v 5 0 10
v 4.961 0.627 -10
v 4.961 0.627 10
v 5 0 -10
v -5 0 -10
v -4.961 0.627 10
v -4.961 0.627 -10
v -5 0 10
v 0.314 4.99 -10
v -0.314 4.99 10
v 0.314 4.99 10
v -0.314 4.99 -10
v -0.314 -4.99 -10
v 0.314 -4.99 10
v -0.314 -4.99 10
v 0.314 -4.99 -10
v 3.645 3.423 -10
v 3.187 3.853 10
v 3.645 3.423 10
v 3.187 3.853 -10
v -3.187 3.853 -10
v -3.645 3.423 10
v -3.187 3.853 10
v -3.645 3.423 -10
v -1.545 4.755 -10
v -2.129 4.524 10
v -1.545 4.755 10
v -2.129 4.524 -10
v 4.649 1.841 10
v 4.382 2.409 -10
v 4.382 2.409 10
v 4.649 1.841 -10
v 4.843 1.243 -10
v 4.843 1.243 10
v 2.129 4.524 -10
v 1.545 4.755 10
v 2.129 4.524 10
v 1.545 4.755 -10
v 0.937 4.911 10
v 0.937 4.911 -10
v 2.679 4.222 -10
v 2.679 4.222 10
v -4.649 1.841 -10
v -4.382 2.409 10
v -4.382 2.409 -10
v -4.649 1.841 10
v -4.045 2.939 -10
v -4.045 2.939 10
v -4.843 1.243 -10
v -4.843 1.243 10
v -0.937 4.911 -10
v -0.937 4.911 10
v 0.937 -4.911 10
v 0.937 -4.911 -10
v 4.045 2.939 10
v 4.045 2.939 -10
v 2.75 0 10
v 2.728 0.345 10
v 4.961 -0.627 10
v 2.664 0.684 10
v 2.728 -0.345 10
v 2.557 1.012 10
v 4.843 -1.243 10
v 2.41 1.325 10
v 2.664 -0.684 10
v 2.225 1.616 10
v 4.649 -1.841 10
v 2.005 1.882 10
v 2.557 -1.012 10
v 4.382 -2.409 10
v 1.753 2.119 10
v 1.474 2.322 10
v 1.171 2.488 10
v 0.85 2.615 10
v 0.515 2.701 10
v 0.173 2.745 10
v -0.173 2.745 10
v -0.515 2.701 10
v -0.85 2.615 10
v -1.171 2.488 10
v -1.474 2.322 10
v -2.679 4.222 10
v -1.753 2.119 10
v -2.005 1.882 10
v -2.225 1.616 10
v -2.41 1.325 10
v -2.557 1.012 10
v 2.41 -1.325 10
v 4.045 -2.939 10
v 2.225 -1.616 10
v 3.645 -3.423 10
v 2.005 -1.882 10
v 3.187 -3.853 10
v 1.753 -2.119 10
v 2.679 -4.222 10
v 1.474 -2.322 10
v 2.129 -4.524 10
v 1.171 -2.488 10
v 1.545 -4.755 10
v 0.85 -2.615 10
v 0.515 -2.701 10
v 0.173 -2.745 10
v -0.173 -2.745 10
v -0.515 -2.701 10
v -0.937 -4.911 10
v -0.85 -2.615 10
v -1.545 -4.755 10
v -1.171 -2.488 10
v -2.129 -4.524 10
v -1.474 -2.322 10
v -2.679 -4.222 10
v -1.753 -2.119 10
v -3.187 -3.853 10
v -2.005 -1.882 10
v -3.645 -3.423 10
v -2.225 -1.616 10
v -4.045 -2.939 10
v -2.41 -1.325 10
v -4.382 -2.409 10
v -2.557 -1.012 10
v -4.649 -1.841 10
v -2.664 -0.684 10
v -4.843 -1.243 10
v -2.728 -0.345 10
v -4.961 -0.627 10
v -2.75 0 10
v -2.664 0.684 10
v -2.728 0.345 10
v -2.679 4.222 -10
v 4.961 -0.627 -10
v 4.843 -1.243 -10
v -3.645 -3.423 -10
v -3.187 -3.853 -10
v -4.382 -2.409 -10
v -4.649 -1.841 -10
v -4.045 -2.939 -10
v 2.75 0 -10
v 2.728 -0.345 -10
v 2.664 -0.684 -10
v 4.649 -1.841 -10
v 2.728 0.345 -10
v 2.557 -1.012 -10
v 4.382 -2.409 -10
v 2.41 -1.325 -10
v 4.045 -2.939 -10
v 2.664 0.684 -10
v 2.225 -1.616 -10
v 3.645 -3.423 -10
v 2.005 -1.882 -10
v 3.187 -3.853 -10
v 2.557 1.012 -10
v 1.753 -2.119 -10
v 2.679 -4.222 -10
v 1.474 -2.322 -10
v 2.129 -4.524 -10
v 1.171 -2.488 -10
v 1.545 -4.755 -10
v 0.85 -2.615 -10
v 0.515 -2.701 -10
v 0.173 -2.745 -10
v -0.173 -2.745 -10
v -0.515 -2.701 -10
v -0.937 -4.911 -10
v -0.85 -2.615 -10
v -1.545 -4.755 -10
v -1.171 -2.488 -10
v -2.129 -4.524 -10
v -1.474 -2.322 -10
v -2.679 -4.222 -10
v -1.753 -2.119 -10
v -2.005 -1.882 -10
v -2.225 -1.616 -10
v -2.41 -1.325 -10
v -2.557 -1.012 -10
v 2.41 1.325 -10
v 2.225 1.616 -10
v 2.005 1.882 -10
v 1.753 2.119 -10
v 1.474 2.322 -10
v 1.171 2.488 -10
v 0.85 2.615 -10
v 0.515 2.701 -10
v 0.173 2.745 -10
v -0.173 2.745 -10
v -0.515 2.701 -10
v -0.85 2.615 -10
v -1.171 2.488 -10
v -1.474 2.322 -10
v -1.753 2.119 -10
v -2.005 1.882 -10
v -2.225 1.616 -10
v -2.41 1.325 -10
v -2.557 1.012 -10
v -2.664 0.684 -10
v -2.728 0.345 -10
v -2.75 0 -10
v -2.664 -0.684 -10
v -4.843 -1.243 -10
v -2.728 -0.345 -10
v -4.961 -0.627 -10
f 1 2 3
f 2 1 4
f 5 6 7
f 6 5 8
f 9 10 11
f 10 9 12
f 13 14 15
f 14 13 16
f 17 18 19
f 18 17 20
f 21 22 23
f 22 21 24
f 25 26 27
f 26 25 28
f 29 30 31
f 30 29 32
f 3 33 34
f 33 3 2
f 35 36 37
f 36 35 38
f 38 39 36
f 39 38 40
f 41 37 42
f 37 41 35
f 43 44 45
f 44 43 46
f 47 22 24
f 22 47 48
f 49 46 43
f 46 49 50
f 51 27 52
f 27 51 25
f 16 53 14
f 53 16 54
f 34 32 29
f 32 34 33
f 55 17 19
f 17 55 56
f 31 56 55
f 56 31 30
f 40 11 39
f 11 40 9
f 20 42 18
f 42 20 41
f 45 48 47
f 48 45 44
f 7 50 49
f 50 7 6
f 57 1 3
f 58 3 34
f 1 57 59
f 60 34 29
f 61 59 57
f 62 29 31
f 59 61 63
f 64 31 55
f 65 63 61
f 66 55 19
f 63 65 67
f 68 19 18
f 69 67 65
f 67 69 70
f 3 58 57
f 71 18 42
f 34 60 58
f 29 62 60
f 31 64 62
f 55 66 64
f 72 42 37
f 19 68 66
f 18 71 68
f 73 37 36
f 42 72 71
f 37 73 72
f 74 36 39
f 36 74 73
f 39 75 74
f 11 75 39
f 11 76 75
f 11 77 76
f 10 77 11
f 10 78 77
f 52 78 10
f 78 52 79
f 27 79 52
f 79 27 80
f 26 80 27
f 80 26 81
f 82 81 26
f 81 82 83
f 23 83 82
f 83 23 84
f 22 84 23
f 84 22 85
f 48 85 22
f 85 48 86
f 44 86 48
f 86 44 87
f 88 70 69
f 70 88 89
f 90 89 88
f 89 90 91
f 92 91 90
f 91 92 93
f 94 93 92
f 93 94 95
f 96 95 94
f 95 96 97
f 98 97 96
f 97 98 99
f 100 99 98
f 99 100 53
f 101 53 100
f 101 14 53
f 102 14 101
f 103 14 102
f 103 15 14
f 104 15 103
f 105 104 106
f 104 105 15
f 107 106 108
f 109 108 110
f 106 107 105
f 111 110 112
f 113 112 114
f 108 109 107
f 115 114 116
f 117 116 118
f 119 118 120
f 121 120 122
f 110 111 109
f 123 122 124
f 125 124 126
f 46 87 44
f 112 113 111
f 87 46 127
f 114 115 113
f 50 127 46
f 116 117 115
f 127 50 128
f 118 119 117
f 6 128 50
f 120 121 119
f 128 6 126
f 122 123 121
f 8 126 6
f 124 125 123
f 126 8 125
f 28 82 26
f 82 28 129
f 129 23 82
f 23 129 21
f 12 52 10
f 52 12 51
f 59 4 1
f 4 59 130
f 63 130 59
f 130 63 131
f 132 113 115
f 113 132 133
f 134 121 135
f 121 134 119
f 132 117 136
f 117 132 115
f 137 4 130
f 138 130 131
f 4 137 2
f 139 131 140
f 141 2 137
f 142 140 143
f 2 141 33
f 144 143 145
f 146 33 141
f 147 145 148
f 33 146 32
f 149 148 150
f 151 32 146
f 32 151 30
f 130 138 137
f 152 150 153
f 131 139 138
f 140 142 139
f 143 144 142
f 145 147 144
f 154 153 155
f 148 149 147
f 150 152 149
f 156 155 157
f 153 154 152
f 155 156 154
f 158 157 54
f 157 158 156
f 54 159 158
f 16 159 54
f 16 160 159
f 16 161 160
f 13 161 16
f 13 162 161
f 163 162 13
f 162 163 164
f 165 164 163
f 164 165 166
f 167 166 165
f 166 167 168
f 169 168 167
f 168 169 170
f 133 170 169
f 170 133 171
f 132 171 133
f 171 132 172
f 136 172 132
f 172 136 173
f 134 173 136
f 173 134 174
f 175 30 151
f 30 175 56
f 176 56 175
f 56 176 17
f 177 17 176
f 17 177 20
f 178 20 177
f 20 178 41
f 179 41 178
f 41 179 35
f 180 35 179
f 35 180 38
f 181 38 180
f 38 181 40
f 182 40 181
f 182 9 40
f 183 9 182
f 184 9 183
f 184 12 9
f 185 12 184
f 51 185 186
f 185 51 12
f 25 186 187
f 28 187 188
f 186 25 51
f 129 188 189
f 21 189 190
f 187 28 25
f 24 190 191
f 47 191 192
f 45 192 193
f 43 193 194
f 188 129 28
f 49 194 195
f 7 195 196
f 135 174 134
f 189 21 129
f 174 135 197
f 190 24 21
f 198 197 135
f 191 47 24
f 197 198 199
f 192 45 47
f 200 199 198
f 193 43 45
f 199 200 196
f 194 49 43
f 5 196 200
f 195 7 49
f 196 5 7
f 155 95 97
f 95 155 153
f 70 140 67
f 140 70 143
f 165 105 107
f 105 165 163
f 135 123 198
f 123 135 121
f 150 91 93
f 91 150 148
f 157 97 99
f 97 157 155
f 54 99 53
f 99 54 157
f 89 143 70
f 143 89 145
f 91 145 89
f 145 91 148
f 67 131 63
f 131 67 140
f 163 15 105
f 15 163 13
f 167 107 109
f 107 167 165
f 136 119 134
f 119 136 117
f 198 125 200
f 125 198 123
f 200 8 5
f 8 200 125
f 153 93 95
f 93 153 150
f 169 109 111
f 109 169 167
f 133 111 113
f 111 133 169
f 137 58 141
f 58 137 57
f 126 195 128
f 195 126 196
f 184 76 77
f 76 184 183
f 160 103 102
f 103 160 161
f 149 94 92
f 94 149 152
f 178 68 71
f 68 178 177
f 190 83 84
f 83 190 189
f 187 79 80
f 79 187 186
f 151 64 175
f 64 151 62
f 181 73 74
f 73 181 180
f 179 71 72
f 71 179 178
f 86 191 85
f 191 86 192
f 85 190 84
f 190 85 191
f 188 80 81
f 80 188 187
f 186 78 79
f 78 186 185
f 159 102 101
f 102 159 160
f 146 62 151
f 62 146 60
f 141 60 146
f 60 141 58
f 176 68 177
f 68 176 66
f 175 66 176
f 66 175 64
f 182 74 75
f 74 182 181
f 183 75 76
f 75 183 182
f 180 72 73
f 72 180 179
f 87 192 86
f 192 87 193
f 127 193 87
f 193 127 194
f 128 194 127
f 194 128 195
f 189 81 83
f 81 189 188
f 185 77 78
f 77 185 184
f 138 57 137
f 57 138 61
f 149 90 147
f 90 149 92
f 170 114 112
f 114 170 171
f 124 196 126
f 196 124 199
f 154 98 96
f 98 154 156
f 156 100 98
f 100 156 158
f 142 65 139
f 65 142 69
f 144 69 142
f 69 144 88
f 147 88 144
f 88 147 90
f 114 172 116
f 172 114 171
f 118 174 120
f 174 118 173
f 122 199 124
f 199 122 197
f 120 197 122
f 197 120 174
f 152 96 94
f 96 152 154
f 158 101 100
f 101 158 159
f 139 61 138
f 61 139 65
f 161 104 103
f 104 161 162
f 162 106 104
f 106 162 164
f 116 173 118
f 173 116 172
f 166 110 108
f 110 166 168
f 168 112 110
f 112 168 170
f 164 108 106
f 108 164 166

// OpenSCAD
$fn = 50;


difference() {
	union() {
		translate(v = [0, 0, -10.0000000000]) {
			cylinder(h = 20, r = 5.0000000000);
		}
	}
	union() {
		translate(v = [0, 0, -100.0000000000]) {
			cylinder(h = 200, r = 2.7500000000);
		}
	}
}
